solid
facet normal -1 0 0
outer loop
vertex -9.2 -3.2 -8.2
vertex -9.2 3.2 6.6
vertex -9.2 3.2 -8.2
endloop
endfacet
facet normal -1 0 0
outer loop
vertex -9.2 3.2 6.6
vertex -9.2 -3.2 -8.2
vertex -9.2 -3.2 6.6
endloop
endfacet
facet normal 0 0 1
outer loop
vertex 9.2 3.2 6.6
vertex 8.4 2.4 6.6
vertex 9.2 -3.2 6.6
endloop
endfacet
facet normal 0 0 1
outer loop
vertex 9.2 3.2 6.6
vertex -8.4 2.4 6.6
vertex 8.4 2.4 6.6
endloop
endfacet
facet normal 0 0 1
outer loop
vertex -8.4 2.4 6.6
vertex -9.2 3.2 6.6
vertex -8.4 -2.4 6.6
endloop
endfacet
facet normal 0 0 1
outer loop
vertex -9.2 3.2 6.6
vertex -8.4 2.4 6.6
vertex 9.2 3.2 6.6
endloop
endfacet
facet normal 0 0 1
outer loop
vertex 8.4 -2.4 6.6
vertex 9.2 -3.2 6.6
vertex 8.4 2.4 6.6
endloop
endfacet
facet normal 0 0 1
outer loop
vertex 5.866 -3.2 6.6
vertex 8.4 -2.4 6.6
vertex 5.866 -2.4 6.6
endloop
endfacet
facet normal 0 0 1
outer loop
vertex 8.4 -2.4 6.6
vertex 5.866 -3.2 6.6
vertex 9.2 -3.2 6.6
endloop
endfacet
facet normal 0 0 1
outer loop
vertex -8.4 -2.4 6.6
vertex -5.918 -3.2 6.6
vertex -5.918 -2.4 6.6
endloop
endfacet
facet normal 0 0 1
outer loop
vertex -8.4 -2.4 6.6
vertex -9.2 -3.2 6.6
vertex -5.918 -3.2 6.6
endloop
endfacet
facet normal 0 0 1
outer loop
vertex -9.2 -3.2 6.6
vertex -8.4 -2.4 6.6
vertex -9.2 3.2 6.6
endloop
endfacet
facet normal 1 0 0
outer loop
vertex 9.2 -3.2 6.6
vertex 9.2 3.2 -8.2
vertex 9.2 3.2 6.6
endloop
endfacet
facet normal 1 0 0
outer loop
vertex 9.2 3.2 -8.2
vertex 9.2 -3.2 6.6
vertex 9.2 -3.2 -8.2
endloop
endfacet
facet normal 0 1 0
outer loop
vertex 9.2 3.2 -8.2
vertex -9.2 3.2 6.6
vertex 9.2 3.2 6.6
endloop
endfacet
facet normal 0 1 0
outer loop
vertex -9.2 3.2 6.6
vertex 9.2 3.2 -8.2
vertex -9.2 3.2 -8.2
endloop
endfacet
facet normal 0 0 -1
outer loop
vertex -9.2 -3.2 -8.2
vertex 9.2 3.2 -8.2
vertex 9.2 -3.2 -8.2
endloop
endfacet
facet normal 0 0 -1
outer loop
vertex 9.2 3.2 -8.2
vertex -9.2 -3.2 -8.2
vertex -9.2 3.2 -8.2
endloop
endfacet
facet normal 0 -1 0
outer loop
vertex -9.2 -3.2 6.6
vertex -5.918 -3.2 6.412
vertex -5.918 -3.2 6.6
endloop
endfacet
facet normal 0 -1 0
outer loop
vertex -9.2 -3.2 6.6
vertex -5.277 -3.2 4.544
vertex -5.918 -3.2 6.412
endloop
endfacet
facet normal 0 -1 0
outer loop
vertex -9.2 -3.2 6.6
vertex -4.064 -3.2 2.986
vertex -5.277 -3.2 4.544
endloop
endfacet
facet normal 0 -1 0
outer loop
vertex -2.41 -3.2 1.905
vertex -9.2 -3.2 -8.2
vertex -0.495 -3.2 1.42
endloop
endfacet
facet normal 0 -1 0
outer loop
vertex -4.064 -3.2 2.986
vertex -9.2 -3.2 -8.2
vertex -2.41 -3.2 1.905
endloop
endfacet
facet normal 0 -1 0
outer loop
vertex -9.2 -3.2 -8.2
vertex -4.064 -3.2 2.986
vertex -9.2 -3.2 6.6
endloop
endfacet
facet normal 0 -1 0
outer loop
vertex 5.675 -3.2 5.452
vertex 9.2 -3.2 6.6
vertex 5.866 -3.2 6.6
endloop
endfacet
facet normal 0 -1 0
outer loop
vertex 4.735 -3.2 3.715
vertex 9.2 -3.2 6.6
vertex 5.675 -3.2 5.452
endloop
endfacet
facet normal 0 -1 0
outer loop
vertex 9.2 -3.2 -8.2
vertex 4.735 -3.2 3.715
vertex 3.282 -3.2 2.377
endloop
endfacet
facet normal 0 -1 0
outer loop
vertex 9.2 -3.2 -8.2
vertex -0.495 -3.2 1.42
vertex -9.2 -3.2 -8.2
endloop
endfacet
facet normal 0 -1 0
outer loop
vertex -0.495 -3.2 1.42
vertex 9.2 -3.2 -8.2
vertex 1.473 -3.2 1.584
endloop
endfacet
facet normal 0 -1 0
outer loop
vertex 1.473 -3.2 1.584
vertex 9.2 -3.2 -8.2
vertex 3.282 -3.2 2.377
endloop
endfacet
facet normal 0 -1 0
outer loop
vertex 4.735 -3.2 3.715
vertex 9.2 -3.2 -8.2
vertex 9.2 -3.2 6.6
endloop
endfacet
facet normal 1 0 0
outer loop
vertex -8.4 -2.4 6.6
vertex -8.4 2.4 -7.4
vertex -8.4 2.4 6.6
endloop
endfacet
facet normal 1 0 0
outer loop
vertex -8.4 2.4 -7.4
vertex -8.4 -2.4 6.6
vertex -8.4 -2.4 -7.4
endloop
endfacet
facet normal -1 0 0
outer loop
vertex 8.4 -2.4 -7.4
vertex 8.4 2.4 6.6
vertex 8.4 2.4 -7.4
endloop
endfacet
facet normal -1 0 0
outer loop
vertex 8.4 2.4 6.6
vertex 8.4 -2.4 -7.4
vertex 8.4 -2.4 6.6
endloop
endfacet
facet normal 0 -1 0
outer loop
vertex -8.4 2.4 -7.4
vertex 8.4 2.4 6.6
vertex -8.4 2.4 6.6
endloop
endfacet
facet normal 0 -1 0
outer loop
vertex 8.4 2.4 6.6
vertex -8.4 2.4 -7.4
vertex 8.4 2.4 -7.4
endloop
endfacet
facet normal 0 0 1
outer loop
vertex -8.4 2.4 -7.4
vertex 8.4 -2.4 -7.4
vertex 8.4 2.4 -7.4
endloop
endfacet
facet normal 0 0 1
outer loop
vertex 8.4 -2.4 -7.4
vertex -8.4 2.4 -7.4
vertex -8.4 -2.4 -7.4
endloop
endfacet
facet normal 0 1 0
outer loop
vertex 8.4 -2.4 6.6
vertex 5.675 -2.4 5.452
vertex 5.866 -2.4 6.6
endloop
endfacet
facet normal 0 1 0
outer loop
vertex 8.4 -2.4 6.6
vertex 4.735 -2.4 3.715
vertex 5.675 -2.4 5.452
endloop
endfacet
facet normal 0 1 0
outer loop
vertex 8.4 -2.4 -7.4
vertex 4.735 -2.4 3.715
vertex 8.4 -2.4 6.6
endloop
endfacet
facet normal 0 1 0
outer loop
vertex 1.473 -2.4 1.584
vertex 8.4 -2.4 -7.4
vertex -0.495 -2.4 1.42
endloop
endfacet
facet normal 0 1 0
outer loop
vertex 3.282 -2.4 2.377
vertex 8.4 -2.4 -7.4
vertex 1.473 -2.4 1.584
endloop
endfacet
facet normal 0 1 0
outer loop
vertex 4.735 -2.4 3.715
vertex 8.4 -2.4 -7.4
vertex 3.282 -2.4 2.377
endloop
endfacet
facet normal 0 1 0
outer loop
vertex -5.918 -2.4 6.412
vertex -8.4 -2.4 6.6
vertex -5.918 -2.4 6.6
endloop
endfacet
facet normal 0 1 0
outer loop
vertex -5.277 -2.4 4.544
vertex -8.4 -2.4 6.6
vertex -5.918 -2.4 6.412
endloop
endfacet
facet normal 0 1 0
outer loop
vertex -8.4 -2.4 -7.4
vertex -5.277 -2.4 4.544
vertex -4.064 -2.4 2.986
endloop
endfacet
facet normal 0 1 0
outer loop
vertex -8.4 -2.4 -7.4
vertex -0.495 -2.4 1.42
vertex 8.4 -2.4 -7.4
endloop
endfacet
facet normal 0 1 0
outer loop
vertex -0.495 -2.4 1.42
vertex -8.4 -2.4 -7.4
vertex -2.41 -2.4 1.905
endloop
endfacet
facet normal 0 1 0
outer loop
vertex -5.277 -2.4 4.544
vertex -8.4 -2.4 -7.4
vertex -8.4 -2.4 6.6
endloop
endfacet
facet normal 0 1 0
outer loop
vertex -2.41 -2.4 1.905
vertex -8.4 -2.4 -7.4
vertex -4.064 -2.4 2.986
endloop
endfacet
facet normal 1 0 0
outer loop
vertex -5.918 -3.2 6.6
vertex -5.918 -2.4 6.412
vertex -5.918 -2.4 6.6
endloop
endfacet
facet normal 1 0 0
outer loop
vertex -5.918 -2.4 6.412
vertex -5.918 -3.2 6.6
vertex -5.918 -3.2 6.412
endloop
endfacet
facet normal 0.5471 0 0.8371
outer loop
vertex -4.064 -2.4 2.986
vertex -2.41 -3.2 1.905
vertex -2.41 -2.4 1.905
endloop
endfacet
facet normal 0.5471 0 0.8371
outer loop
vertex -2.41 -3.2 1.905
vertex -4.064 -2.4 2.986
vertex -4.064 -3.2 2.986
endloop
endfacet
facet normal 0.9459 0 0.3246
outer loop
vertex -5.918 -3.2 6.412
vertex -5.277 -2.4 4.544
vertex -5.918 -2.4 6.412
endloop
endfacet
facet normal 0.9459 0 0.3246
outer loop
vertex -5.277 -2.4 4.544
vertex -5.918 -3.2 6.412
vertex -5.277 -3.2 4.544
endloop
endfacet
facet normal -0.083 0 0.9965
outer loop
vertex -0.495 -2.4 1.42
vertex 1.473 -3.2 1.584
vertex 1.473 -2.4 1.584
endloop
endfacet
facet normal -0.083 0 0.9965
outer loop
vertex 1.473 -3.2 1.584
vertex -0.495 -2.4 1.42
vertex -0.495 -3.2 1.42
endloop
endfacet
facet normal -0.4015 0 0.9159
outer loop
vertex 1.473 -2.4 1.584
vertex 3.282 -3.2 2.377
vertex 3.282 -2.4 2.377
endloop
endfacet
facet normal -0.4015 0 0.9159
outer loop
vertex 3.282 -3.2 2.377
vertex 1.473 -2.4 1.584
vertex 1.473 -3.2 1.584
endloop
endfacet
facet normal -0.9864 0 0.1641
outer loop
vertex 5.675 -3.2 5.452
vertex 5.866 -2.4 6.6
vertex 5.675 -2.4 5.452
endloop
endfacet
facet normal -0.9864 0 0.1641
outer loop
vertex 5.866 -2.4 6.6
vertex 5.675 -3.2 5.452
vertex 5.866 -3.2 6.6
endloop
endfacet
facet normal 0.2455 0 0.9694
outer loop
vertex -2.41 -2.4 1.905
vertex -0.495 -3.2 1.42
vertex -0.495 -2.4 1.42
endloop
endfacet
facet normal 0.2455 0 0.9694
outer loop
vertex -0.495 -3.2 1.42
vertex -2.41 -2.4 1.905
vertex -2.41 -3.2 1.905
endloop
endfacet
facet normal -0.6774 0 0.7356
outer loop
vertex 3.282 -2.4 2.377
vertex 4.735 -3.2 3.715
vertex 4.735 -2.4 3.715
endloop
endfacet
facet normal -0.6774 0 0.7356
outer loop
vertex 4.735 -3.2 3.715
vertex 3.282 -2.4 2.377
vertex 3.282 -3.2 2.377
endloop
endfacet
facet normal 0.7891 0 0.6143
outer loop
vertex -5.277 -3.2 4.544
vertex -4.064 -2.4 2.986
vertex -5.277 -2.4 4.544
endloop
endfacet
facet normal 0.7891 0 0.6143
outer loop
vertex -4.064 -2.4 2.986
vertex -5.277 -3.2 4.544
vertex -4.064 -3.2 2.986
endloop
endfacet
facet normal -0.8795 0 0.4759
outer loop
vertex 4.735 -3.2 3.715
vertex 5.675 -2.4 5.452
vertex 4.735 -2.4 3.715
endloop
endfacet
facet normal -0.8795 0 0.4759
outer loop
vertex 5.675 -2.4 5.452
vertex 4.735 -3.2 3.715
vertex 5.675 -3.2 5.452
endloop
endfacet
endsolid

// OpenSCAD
// Quizbot face mount

clear=0.4;
qb_width=16+2*clear;
qb_deep=4+2*clear;
qb_high=14+2*clear;
wall=0.8; // mm wall thickness
module facemount() {
    union() {
        difference() {
            translate([0,0,-wall])
                cube(size=[qb_width+2*wall,qb_deep+2*wall,qb_high],center=true);
            translate([0,0,0])
           #     cube(size=[qb_width,qb_deep,qb_high],center=true);
            
            translate([0,0,qb_high/2])
                rotate([90,0,0])
                    cylinder(r=6,h=20);
        }
    }
}

//for (sh=[0,1,2,3])
//    translate([sh*40,0,0])
        facemount();
